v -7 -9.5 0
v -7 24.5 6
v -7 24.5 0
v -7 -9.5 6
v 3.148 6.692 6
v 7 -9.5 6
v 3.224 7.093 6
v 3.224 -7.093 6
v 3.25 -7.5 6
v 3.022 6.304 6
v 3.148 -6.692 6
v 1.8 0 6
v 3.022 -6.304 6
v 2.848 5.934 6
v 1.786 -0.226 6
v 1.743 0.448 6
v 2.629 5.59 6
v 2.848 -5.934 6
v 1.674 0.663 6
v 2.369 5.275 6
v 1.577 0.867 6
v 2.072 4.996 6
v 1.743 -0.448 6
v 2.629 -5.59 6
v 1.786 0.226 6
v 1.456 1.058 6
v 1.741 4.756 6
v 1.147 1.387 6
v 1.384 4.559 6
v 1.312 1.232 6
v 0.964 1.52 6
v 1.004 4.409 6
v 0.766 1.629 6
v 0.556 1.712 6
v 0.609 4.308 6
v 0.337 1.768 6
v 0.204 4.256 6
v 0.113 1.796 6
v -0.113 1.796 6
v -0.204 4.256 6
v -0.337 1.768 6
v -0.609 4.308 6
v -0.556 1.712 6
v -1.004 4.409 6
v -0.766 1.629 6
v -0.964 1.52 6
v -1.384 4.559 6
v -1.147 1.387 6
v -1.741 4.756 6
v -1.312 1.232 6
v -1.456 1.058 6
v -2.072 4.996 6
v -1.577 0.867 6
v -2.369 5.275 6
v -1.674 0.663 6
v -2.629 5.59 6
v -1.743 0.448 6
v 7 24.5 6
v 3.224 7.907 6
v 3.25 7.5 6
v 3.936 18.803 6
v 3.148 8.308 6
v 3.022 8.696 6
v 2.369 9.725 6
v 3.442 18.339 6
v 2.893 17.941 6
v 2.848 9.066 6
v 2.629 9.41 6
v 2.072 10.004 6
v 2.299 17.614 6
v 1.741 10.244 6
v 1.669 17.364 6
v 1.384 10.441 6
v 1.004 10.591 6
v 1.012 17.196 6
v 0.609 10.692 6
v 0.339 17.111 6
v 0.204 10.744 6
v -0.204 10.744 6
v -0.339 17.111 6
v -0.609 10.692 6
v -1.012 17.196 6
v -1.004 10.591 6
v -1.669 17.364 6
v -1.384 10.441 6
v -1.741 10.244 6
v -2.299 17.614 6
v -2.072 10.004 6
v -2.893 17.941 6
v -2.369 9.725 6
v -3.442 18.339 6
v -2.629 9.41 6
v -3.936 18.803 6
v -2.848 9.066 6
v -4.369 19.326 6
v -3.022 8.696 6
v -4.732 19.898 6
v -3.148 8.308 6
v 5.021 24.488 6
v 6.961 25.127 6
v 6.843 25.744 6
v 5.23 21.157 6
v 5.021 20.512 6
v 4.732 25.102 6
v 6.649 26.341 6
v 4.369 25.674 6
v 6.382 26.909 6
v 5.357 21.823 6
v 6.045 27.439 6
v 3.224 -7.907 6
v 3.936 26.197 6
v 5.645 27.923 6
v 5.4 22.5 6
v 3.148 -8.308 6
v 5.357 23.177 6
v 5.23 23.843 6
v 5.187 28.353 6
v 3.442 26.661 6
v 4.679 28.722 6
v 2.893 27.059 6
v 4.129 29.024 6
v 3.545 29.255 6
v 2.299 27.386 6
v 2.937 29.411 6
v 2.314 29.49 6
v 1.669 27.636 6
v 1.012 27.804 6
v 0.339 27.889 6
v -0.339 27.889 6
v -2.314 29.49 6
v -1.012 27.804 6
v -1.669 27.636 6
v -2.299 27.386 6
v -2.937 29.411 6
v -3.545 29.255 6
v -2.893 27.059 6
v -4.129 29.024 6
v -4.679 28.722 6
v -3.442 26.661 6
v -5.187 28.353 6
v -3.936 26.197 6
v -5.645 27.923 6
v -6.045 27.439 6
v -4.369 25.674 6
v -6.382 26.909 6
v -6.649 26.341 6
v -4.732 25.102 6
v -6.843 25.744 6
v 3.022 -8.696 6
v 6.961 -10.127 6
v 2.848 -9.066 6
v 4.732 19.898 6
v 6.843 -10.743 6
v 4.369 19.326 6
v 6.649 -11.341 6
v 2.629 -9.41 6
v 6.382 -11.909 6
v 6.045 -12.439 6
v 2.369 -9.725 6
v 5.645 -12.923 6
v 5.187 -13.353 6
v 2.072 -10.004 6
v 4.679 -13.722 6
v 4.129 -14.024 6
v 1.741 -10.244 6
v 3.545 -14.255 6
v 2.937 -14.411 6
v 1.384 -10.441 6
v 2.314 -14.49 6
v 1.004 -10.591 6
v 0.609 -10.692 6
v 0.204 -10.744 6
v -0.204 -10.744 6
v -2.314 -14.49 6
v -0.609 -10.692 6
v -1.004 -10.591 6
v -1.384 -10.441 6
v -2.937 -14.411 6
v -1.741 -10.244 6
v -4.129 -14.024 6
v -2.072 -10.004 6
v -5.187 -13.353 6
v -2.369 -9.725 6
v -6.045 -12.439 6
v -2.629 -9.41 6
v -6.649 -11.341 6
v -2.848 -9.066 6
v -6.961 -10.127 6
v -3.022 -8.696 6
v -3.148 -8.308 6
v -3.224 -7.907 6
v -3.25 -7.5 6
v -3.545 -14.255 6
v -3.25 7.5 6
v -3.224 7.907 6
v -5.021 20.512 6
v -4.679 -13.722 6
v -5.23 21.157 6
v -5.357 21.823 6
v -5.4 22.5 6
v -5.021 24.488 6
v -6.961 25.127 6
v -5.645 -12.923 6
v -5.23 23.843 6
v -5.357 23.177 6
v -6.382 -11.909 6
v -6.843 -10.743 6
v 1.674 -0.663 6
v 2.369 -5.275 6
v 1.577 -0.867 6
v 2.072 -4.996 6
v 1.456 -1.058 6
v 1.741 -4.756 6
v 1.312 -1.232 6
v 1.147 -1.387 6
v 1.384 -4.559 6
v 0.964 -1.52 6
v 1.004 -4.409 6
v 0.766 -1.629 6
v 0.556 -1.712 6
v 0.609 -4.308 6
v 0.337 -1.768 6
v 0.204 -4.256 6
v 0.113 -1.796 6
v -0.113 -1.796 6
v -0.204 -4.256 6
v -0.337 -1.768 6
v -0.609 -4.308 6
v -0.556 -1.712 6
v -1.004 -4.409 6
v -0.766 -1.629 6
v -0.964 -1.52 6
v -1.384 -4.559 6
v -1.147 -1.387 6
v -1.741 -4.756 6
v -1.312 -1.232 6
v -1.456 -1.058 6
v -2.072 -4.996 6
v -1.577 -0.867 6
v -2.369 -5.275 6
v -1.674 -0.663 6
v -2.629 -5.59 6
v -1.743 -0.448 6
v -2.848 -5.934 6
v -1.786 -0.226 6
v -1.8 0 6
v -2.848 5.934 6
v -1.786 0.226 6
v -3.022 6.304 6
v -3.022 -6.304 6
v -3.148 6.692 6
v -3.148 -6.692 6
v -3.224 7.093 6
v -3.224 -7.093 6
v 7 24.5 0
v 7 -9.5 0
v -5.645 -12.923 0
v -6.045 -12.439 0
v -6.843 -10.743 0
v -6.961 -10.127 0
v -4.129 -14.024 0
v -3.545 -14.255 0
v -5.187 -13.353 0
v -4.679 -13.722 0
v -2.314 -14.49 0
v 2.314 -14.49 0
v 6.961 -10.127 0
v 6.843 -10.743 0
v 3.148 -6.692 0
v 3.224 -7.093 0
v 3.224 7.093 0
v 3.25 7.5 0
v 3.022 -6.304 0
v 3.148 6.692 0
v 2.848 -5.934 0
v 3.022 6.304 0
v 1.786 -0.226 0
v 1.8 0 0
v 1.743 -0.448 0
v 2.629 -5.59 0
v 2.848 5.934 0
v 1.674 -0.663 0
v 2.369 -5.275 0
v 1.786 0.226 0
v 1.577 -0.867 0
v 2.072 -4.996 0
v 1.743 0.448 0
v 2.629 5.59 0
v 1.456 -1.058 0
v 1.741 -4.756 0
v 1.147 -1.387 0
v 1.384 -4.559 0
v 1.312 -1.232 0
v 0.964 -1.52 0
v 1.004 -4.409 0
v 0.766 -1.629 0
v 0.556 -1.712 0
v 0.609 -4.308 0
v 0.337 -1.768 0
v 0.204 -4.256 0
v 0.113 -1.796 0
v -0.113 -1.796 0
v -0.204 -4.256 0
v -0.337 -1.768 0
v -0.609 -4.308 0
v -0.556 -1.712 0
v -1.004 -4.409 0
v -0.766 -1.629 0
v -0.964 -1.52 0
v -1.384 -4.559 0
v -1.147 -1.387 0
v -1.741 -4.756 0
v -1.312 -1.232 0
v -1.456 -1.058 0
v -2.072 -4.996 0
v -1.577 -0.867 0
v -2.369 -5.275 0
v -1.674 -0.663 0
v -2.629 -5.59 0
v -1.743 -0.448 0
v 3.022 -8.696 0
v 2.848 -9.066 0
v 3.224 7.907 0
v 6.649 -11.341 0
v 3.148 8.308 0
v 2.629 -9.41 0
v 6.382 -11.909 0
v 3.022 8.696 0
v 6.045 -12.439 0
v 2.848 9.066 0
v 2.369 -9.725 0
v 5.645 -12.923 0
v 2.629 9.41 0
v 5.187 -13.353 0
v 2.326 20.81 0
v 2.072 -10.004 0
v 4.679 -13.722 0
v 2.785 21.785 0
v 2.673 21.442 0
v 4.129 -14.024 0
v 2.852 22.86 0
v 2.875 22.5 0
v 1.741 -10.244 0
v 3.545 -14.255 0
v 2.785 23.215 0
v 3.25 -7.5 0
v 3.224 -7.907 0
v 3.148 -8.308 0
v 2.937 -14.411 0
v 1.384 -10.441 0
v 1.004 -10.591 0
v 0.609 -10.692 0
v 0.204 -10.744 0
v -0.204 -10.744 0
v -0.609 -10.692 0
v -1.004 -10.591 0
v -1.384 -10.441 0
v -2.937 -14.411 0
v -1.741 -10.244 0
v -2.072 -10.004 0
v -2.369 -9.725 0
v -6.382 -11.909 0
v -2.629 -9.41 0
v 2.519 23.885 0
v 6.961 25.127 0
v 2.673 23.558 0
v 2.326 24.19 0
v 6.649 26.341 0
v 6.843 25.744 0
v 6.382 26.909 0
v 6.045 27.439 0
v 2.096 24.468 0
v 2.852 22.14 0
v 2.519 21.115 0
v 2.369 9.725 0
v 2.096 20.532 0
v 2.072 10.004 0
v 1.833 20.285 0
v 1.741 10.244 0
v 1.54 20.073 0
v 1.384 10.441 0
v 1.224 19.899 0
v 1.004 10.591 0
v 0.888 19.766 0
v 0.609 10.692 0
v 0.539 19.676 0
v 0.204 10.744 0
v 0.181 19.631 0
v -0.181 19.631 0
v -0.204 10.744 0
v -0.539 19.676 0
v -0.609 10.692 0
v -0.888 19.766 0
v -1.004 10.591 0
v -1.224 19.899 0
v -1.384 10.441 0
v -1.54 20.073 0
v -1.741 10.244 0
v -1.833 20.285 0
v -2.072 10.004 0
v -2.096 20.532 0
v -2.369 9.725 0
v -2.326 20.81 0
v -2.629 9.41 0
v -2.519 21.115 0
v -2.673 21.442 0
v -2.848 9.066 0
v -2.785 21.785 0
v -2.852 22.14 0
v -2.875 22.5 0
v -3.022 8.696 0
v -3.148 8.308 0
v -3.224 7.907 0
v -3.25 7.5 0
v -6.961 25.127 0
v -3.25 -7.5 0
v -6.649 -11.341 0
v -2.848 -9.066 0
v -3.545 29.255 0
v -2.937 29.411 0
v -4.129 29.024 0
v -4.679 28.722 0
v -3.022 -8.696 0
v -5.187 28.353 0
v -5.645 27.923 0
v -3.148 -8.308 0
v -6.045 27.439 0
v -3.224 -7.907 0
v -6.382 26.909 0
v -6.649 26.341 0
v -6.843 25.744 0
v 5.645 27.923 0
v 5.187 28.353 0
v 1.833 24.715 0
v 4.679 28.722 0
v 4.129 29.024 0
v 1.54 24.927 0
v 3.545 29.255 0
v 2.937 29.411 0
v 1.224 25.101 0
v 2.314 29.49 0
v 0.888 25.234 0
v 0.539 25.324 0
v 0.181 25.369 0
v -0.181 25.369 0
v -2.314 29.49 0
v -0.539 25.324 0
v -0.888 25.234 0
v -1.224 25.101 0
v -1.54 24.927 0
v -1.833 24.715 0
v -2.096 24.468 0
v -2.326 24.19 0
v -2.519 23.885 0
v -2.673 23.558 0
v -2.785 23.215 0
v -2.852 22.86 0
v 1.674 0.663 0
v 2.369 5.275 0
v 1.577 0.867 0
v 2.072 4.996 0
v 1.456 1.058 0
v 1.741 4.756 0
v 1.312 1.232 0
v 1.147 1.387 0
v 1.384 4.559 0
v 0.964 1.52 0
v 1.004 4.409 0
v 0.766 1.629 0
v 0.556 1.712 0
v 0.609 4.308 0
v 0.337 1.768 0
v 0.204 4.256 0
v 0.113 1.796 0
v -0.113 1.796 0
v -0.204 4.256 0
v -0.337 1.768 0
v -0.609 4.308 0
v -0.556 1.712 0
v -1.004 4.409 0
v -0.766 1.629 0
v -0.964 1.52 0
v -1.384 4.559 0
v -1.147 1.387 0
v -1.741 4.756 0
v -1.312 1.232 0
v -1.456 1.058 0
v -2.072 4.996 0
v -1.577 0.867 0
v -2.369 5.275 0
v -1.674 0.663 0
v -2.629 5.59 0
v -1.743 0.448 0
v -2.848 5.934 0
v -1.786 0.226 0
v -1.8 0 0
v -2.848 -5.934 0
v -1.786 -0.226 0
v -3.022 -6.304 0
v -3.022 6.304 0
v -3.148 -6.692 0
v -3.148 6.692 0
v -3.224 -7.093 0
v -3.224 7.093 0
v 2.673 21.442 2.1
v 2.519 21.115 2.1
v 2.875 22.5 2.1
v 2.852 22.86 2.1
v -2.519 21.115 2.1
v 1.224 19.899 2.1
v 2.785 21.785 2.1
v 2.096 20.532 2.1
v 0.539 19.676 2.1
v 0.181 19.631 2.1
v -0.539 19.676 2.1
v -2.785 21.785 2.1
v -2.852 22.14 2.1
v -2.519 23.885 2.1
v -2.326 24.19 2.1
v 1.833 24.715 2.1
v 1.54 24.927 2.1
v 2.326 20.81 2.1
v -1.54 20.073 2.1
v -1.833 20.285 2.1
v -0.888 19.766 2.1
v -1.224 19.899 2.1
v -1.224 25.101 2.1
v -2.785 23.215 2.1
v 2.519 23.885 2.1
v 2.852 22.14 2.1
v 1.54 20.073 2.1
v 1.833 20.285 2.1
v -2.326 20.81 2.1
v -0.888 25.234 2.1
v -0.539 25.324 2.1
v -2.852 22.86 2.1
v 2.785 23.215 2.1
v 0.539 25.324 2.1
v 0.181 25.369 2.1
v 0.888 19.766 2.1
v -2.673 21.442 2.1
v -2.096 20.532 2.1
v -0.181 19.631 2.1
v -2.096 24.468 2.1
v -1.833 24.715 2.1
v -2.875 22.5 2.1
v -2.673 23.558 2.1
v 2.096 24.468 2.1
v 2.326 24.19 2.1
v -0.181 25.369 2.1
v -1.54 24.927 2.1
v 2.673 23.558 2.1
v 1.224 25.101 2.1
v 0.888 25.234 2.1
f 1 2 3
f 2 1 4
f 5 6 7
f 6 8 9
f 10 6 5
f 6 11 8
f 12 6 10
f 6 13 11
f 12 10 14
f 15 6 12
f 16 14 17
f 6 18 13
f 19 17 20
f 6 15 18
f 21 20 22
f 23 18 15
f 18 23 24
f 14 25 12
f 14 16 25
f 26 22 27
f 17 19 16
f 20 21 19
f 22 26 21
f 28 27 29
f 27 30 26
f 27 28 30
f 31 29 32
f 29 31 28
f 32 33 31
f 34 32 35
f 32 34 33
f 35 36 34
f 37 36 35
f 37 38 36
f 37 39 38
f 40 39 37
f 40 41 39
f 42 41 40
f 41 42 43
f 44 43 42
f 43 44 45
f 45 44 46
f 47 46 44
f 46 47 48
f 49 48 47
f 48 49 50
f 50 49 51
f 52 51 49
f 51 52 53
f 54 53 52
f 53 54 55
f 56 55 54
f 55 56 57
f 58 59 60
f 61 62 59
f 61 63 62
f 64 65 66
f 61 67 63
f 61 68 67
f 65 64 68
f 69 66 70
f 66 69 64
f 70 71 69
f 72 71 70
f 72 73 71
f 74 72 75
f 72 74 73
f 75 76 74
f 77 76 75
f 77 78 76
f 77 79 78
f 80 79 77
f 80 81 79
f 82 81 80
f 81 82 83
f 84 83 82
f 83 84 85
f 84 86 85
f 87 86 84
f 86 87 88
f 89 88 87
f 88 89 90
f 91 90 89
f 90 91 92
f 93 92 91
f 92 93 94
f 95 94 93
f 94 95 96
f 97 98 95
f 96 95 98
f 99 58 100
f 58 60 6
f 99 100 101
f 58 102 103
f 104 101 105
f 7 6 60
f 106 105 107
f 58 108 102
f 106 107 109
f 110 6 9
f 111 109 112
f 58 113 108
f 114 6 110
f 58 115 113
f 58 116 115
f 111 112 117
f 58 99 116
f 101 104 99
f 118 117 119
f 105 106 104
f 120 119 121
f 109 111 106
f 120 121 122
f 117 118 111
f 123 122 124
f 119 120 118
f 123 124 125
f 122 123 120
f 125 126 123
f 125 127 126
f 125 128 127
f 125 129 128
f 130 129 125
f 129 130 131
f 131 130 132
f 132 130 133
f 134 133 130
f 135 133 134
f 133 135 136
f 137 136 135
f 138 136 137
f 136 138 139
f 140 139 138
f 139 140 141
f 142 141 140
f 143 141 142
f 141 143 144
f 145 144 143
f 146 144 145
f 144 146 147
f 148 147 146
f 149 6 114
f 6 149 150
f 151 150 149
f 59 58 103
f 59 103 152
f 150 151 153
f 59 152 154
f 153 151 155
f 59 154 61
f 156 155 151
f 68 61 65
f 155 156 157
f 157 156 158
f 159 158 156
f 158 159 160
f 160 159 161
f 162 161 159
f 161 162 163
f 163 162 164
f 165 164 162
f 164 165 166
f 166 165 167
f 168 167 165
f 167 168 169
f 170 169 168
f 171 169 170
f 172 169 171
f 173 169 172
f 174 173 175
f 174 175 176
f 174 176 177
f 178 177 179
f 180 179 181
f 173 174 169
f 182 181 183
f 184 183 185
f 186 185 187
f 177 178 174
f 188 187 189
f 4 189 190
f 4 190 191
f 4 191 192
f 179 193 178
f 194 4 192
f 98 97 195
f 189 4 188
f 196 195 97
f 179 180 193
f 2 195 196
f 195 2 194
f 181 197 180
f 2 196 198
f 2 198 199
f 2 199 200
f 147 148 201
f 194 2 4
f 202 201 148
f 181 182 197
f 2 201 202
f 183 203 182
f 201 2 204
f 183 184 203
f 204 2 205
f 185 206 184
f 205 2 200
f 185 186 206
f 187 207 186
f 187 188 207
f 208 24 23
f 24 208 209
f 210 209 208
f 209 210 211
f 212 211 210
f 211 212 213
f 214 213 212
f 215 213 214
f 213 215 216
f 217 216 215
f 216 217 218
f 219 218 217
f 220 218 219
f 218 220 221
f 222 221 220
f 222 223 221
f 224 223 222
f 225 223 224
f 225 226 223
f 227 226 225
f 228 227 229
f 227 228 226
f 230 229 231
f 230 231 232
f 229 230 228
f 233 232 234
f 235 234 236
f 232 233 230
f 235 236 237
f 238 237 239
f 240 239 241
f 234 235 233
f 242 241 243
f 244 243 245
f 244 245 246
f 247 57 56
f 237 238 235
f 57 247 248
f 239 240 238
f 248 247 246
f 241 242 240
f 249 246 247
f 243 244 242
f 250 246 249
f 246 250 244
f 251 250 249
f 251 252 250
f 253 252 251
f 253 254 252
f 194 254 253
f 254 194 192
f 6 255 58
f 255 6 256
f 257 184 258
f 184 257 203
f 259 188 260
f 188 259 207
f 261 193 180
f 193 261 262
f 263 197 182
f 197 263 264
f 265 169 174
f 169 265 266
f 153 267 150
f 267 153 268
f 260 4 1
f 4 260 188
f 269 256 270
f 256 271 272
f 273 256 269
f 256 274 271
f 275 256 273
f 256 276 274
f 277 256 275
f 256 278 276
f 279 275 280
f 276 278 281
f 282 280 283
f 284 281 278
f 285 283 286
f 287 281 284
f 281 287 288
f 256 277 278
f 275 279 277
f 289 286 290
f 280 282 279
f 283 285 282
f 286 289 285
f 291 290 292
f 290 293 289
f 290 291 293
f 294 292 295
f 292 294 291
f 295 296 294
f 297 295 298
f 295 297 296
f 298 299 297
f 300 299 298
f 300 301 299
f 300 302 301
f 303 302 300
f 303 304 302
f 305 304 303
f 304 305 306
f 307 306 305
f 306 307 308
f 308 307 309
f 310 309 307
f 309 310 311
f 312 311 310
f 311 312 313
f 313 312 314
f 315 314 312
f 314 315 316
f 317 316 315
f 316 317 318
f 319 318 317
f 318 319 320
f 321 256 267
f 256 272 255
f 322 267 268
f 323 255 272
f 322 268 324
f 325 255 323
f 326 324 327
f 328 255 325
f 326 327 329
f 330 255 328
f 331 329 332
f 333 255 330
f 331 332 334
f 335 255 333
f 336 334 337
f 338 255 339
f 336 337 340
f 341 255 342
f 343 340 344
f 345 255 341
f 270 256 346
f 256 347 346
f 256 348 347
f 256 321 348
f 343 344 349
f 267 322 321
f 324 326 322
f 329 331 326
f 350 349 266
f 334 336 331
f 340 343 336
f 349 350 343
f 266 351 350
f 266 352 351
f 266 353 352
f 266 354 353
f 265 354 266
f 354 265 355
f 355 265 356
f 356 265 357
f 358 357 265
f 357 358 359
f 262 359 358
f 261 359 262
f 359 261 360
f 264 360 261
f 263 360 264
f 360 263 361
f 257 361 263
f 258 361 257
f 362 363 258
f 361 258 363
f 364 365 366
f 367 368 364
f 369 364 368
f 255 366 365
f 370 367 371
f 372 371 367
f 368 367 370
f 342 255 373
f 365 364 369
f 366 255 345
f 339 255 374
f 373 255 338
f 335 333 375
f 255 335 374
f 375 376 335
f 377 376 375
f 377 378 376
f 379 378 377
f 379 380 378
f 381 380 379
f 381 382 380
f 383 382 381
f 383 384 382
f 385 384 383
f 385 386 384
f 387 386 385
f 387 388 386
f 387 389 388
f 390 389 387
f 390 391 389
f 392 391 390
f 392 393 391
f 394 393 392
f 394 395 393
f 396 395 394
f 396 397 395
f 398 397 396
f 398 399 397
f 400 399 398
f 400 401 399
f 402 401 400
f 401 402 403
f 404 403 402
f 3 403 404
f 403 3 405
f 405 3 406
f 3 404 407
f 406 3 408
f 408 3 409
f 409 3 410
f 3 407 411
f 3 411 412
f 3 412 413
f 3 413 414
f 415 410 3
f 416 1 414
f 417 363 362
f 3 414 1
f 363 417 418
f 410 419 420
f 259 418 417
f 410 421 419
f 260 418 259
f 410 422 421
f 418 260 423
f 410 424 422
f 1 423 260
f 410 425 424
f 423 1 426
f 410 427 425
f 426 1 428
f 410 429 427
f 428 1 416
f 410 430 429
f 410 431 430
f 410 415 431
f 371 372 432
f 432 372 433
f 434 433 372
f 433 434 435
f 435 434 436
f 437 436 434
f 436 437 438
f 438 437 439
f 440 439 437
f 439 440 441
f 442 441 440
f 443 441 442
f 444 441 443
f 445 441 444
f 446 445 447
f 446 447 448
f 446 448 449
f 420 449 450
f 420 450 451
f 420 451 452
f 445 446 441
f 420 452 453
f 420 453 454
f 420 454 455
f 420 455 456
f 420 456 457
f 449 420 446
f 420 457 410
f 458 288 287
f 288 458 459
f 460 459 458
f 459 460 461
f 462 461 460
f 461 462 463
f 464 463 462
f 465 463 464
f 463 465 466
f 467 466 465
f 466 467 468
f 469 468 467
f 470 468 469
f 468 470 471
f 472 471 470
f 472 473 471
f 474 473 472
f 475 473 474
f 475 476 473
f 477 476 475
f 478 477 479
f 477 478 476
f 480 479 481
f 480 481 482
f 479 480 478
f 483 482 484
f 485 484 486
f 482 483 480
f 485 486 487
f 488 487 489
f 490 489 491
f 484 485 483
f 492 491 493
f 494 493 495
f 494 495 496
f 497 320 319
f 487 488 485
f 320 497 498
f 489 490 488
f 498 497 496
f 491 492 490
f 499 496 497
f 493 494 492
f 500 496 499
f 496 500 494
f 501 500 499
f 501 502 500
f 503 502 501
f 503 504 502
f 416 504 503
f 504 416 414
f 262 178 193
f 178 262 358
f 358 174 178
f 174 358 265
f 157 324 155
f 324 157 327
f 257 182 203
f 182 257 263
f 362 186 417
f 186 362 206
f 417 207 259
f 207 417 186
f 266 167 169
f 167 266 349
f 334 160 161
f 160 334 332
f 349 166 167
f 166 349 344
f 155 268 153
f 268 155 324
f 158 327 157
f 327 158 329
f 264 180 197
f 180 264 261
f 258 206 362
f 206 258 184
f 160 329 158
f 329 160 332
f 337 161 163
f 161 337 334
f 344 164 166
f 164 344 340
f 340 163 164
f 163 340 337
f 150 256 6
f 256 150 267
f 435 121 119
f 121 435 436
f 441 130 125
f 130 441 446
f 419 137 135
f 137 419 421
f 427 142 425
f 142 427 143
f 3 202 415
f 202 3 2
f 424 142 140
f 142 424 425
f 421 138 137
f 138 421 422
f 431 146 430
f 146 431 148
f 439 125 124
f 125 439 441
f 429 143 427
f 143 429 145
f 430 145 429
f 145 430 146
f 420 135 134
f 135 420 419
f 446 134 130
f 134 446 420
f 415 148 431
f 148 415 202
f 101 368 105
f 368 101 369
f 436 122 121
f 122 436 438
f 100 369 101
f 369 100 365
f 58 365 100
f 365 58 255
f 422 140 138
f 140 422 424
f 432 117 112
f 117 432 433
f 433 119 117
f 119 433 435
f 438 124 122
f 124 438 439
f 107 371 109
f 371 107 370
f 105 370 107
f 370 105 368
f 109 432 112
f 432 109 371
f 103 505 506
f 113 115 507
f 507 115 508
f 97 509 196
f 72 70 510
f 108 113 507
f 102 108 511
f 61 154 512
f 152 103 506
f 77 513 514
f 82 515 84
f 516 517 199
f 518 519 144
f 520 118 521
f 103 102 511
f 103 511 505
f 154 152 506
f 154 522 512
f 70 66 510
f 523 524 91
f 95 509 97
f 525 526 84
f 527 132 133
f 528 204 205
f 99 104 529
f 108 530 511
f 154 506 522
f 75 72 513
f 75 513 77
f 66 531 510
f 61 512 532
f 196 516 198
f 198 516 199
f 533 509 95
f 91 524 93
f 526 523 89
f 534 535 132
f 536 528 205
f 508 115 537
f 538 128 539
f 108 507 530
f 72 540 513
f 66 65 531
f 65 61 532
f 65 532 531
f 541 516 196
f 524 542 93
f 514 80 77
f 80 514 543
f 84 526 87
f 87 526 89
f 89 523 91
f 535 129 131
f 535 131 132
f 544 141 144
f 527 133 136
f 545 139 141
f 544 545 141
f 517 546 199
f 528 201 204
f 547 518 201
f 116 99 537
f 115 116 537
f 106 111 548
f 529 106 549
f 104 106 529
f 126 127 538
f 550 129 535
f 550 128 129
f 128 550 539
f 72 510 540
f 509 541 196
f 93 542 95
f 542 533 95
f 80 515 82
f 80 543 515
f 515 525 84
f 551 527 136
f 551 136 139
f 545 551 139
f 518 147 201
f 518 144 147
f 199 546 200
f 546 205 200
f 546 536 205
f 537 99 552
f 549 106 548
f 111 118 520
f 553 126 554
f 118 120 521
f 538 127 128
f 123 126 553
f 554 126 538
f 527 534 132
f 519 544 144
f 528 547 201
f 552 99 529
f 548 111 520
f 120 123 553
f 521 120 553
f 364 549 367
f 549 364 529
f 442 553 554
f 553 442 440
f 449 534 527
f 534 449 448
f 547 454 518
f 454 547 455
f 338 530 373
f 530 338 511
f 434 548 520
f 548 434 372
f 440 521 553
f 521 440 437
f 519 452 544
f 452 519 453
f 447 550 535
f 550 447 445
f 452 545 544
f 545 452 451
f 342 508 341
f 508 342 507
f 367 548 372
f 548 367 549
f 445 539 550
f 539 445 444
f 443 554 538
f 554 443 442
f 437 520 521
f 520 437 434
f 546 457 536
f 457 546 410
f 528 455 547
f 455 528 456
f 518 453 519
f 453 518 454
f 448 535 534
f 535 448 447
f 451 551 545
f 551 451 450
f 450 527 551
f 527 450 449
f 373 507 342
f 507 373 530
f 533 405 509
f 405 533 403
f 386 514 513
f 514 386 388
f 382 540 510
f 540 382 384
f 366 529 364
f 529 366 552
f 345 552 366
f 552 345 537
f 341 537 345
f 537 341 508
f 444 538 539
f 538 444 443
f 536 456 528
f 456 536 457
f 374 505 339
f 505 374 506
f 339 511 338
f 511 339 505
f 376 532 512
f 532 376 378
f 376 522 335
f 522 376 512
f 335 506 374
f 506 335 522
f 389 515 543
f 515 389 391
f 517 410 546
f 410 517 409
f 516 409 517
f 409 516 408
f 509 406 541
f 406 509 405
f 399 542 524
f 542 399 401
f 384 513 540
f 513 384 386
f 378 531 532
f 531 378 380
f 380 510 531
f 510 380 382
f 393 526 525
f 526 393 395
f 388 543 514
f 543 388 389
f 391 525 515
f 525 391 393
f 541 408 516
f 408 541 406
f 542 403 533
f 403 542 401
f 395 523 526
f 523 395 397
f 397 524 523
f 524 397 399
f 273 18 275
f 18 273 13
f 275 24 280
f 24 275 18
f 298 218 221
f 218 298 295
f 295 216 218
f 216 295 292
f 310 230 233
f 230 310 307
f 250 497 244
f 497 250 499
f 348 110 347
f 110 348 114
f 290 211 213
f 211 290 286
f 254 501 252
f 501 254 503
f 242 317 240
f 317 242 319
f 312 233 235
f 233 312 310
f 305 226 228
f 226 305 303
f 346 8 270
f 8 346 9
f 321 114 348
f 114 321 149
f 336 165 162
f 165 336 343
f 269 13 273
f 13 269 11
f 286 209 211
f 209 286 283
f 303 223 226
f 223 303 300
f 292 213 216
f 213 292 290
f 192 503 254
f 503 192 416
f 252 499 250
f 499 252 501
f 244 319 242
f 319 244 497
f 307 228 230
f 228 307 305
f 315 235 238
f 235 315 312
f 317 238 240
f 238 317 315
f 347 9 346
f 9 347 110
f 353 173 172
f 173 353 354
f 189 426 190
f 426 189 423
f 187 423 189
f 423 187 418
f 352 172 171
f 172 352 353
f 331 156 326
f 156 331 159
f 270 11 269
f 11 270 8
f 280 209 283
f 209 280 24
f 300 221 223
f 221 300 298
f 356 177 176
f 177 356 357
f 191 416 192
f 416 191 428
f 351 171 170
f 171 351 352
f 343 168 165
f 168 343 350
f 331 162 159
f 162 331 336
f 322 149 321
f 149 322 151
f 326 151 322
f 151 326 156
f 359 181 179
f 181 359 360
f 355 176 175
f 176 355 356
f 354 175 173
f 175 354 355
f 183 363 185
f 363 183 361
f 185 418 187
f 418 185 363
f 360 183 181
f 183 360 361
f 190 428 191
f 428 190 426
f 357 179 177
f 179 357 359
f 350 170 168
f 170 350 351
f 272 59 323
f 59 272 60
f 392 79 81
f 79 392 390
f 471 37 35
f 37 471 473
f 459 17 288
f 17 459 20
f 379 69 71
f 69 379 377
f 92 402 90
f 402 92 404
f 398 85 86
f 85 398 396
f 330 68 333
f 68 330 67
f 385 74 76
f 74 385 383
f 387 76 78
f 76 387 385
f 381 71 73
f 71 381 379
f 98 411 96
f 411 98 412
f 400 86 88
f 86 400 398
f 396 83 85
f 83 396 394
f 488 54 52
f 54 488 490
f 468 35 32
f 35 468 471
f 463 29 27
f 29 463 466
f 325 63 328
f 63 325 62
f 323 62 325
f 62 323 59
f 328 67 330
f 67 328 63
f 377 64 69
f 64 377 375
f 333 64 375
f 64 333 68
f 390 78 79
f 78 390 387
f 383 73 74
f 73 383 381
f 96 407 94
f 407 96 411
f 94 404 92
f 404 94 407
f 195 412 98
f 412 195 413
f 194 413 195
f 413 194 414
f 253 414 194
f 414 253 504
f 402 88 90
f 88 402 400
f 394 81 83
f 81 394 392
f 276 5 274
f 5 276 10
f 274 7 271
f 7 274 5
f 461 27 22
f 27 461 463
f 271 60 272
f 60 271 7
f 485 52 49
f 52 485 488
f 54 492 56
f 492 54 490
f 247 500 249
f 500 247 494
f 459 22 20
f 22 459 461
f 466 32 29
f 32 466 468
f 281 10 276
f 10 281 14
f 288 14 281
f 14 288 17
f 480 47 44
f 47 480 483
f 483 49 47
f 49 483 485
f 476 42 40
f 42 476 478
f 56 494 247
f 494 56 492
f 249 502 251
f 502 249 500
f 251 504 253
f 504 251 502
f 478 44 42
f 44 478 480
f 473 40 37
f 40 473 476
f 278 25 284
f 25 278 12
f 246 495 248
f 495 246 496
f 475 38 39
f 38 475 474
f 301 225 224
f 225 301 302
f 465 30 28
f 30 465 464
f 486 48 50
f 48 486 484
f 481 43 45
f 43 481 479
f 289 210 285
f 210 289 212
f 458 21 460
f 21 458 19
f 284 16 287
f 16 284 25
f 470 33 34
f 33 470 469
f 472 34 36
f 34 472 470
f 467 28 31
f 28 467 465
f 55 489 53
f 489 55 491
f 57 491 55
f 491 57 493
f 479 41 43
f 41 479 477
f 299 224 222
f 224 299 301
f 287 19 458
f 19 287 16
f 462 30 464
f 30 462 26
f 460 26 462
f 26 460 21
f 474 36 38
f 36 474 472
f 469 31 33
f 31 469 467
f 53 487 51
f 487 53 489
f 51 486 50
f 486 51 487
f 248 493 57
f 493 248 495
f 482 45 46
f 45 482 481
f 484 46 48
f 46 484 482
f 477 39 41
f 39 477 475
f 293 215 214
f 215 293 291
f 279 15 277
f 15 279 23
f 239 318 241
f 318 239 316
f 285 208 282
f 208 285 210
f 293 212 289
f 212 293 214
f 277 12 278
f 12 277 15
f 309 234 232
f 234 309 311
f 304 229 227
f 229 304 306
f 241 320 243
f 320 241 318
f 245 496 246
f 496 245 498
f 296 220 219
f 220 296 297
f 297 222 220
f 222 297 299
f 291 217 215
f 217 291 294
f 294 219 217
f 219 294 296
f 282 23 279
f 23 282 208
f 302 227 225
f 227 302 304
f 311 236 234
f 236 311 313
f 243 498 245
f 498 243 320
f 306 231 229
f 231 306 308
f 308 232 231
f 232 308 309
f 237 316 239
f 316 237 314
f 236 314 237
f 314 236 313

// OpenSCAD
$fn = 50;


difference() {
	union() {
		hull() {
			translate(v = [-2.0000000000, 9.5000000000, 0]) {
				cylinder(h = 6, r = 5);
			}
			translate(v = [2.0000000000, 9.5000000000, 0]) {
				cylinder(h = 6, r = 5);
			}
			translate(v = [-2.0000000000, -9.5000000000, 0]) {
				cylinder(h = 6, r = 5);
			}
			translate(v = [2.0000000000, -9.5000000000, 0]) {
				cylinder(h = 6, r = 5);
			}
		}
		translate(v = [0.0000000000, 15.0000000000, 0]) {
			hull() {
				translate(v = [-2.0000000000, 9.5000000000, 0]) {
					cylinder(h = 6, r = 5);
				}
				translate(v = [2.0000000000, 9.5000000000, 0]) {
					cylinder(h = 6, r = 5);
				}
				translate(v = [-2.0000000000, -9.5000000000, 0]) {
					cylinder(h = 6, r = 5);
				}
				translate(v = [2.0000000000, -9.5000000000, 0]) {
					cylinder(h = 6, r = 5);
				}
			}
		}
		translate(v = [0.0000000000, 15.0000000000, 0]) {
			hull() {
				translate(v = [-2.0000000000, 9.5000000000, 0]) {
					cylinder(h = 6, r = 5);
				}
				translate(v = [2.0000000000, 9.5000000000, 0]) {
					cylinder(h = 6, r = 5);
				}
				translate(v = [-2.0000000000, -9.5000000000, 0]) {
					cylinder(h = 6, r = 5);
				}
				translate(v = [2.0000000000, -9.5000000000, 0]) {
					cylinder(h = 6, r = 5);
				}
			}
		}
	}
	union() {
		translate(v = [0.0000000000, 22.5000000000, 6]) {
			rotate(a = [0, 0, 0]) {
				difference() {
					union() {
						#translate(v = [0, 0, -6.0000000000]) {
							cylinder(h = 6, r = 2.6000000000);
						}
						#translate(v = [0, 0, -3.9000000000]) {
							cylinder(h = 3.9000000000, r1 = 2.8750000000, r2 = 5.4000000000);
						}
						#translate(v = [0, 0, -6.0000000000]) {
							cylinder(h = 6, r = 2.8750000000);
						}
						#translate(v = [0, 0, -6.0000000000]) {
							cylinder(h = 6, r = 2.6000000000);
						}
					}
					union();
				}
			}
		}
		translate(v = [0.0000000000, 22.5000000000, 6]) {
			rotate(a = [0, 0, 0]) {
				difference() {
					union() {
						#translate(v = [0, 0, -6.0000000000]) {
							cylinder(h = 6, r = 2.6000000000);
						}
						#translate(v = [0, 0, -3.9000000000]) {
							cylinder(h = 3.9000000000, r1 = 2.8750000000, r2 = 5.4000000000);
						}
						#translate(v = [0, 0, -6.0000000000]) {
							cylinder(h = 6, r = 2.8750000000);
						}
						#translate(v = [0, 0, -6.0000000000]) {
							cylinder(h = 6, r = 2.6000000000);
						}
					}
					union();
				}
			}
		}
		translate(v = [0.0000000000, -7.5000000000, 0]) {
			translate(v = [0, 0, -100]) {
				cylinder(h = 200, r = 3.2500000000);
			}
		}
		translate(v = [0.0000000000, 7.5000000000, 0]) {
			translate(v = [0, 0, -100]) {
				cylinder(h = 200, r = 3.2500000000);
			}
		}
		translate(v = [0.0000000000, -7.5000000000, 0]) {
			translate(v = [0, 0, -100]) {
				cylinder(h = 200, r = 1.8000000000);
			}
		}
		translate(v = [0, 0, -100]) {
			cylinder(h = 200, r = 1.8000000000);
		}
		translate(v = [0.0000000000, 7.5000000000, 0]) {
			translate(v = [0, 0, -100]) {
				cylinder(h = 200, r = 1.8000000000);
			}
		}
	}
}
